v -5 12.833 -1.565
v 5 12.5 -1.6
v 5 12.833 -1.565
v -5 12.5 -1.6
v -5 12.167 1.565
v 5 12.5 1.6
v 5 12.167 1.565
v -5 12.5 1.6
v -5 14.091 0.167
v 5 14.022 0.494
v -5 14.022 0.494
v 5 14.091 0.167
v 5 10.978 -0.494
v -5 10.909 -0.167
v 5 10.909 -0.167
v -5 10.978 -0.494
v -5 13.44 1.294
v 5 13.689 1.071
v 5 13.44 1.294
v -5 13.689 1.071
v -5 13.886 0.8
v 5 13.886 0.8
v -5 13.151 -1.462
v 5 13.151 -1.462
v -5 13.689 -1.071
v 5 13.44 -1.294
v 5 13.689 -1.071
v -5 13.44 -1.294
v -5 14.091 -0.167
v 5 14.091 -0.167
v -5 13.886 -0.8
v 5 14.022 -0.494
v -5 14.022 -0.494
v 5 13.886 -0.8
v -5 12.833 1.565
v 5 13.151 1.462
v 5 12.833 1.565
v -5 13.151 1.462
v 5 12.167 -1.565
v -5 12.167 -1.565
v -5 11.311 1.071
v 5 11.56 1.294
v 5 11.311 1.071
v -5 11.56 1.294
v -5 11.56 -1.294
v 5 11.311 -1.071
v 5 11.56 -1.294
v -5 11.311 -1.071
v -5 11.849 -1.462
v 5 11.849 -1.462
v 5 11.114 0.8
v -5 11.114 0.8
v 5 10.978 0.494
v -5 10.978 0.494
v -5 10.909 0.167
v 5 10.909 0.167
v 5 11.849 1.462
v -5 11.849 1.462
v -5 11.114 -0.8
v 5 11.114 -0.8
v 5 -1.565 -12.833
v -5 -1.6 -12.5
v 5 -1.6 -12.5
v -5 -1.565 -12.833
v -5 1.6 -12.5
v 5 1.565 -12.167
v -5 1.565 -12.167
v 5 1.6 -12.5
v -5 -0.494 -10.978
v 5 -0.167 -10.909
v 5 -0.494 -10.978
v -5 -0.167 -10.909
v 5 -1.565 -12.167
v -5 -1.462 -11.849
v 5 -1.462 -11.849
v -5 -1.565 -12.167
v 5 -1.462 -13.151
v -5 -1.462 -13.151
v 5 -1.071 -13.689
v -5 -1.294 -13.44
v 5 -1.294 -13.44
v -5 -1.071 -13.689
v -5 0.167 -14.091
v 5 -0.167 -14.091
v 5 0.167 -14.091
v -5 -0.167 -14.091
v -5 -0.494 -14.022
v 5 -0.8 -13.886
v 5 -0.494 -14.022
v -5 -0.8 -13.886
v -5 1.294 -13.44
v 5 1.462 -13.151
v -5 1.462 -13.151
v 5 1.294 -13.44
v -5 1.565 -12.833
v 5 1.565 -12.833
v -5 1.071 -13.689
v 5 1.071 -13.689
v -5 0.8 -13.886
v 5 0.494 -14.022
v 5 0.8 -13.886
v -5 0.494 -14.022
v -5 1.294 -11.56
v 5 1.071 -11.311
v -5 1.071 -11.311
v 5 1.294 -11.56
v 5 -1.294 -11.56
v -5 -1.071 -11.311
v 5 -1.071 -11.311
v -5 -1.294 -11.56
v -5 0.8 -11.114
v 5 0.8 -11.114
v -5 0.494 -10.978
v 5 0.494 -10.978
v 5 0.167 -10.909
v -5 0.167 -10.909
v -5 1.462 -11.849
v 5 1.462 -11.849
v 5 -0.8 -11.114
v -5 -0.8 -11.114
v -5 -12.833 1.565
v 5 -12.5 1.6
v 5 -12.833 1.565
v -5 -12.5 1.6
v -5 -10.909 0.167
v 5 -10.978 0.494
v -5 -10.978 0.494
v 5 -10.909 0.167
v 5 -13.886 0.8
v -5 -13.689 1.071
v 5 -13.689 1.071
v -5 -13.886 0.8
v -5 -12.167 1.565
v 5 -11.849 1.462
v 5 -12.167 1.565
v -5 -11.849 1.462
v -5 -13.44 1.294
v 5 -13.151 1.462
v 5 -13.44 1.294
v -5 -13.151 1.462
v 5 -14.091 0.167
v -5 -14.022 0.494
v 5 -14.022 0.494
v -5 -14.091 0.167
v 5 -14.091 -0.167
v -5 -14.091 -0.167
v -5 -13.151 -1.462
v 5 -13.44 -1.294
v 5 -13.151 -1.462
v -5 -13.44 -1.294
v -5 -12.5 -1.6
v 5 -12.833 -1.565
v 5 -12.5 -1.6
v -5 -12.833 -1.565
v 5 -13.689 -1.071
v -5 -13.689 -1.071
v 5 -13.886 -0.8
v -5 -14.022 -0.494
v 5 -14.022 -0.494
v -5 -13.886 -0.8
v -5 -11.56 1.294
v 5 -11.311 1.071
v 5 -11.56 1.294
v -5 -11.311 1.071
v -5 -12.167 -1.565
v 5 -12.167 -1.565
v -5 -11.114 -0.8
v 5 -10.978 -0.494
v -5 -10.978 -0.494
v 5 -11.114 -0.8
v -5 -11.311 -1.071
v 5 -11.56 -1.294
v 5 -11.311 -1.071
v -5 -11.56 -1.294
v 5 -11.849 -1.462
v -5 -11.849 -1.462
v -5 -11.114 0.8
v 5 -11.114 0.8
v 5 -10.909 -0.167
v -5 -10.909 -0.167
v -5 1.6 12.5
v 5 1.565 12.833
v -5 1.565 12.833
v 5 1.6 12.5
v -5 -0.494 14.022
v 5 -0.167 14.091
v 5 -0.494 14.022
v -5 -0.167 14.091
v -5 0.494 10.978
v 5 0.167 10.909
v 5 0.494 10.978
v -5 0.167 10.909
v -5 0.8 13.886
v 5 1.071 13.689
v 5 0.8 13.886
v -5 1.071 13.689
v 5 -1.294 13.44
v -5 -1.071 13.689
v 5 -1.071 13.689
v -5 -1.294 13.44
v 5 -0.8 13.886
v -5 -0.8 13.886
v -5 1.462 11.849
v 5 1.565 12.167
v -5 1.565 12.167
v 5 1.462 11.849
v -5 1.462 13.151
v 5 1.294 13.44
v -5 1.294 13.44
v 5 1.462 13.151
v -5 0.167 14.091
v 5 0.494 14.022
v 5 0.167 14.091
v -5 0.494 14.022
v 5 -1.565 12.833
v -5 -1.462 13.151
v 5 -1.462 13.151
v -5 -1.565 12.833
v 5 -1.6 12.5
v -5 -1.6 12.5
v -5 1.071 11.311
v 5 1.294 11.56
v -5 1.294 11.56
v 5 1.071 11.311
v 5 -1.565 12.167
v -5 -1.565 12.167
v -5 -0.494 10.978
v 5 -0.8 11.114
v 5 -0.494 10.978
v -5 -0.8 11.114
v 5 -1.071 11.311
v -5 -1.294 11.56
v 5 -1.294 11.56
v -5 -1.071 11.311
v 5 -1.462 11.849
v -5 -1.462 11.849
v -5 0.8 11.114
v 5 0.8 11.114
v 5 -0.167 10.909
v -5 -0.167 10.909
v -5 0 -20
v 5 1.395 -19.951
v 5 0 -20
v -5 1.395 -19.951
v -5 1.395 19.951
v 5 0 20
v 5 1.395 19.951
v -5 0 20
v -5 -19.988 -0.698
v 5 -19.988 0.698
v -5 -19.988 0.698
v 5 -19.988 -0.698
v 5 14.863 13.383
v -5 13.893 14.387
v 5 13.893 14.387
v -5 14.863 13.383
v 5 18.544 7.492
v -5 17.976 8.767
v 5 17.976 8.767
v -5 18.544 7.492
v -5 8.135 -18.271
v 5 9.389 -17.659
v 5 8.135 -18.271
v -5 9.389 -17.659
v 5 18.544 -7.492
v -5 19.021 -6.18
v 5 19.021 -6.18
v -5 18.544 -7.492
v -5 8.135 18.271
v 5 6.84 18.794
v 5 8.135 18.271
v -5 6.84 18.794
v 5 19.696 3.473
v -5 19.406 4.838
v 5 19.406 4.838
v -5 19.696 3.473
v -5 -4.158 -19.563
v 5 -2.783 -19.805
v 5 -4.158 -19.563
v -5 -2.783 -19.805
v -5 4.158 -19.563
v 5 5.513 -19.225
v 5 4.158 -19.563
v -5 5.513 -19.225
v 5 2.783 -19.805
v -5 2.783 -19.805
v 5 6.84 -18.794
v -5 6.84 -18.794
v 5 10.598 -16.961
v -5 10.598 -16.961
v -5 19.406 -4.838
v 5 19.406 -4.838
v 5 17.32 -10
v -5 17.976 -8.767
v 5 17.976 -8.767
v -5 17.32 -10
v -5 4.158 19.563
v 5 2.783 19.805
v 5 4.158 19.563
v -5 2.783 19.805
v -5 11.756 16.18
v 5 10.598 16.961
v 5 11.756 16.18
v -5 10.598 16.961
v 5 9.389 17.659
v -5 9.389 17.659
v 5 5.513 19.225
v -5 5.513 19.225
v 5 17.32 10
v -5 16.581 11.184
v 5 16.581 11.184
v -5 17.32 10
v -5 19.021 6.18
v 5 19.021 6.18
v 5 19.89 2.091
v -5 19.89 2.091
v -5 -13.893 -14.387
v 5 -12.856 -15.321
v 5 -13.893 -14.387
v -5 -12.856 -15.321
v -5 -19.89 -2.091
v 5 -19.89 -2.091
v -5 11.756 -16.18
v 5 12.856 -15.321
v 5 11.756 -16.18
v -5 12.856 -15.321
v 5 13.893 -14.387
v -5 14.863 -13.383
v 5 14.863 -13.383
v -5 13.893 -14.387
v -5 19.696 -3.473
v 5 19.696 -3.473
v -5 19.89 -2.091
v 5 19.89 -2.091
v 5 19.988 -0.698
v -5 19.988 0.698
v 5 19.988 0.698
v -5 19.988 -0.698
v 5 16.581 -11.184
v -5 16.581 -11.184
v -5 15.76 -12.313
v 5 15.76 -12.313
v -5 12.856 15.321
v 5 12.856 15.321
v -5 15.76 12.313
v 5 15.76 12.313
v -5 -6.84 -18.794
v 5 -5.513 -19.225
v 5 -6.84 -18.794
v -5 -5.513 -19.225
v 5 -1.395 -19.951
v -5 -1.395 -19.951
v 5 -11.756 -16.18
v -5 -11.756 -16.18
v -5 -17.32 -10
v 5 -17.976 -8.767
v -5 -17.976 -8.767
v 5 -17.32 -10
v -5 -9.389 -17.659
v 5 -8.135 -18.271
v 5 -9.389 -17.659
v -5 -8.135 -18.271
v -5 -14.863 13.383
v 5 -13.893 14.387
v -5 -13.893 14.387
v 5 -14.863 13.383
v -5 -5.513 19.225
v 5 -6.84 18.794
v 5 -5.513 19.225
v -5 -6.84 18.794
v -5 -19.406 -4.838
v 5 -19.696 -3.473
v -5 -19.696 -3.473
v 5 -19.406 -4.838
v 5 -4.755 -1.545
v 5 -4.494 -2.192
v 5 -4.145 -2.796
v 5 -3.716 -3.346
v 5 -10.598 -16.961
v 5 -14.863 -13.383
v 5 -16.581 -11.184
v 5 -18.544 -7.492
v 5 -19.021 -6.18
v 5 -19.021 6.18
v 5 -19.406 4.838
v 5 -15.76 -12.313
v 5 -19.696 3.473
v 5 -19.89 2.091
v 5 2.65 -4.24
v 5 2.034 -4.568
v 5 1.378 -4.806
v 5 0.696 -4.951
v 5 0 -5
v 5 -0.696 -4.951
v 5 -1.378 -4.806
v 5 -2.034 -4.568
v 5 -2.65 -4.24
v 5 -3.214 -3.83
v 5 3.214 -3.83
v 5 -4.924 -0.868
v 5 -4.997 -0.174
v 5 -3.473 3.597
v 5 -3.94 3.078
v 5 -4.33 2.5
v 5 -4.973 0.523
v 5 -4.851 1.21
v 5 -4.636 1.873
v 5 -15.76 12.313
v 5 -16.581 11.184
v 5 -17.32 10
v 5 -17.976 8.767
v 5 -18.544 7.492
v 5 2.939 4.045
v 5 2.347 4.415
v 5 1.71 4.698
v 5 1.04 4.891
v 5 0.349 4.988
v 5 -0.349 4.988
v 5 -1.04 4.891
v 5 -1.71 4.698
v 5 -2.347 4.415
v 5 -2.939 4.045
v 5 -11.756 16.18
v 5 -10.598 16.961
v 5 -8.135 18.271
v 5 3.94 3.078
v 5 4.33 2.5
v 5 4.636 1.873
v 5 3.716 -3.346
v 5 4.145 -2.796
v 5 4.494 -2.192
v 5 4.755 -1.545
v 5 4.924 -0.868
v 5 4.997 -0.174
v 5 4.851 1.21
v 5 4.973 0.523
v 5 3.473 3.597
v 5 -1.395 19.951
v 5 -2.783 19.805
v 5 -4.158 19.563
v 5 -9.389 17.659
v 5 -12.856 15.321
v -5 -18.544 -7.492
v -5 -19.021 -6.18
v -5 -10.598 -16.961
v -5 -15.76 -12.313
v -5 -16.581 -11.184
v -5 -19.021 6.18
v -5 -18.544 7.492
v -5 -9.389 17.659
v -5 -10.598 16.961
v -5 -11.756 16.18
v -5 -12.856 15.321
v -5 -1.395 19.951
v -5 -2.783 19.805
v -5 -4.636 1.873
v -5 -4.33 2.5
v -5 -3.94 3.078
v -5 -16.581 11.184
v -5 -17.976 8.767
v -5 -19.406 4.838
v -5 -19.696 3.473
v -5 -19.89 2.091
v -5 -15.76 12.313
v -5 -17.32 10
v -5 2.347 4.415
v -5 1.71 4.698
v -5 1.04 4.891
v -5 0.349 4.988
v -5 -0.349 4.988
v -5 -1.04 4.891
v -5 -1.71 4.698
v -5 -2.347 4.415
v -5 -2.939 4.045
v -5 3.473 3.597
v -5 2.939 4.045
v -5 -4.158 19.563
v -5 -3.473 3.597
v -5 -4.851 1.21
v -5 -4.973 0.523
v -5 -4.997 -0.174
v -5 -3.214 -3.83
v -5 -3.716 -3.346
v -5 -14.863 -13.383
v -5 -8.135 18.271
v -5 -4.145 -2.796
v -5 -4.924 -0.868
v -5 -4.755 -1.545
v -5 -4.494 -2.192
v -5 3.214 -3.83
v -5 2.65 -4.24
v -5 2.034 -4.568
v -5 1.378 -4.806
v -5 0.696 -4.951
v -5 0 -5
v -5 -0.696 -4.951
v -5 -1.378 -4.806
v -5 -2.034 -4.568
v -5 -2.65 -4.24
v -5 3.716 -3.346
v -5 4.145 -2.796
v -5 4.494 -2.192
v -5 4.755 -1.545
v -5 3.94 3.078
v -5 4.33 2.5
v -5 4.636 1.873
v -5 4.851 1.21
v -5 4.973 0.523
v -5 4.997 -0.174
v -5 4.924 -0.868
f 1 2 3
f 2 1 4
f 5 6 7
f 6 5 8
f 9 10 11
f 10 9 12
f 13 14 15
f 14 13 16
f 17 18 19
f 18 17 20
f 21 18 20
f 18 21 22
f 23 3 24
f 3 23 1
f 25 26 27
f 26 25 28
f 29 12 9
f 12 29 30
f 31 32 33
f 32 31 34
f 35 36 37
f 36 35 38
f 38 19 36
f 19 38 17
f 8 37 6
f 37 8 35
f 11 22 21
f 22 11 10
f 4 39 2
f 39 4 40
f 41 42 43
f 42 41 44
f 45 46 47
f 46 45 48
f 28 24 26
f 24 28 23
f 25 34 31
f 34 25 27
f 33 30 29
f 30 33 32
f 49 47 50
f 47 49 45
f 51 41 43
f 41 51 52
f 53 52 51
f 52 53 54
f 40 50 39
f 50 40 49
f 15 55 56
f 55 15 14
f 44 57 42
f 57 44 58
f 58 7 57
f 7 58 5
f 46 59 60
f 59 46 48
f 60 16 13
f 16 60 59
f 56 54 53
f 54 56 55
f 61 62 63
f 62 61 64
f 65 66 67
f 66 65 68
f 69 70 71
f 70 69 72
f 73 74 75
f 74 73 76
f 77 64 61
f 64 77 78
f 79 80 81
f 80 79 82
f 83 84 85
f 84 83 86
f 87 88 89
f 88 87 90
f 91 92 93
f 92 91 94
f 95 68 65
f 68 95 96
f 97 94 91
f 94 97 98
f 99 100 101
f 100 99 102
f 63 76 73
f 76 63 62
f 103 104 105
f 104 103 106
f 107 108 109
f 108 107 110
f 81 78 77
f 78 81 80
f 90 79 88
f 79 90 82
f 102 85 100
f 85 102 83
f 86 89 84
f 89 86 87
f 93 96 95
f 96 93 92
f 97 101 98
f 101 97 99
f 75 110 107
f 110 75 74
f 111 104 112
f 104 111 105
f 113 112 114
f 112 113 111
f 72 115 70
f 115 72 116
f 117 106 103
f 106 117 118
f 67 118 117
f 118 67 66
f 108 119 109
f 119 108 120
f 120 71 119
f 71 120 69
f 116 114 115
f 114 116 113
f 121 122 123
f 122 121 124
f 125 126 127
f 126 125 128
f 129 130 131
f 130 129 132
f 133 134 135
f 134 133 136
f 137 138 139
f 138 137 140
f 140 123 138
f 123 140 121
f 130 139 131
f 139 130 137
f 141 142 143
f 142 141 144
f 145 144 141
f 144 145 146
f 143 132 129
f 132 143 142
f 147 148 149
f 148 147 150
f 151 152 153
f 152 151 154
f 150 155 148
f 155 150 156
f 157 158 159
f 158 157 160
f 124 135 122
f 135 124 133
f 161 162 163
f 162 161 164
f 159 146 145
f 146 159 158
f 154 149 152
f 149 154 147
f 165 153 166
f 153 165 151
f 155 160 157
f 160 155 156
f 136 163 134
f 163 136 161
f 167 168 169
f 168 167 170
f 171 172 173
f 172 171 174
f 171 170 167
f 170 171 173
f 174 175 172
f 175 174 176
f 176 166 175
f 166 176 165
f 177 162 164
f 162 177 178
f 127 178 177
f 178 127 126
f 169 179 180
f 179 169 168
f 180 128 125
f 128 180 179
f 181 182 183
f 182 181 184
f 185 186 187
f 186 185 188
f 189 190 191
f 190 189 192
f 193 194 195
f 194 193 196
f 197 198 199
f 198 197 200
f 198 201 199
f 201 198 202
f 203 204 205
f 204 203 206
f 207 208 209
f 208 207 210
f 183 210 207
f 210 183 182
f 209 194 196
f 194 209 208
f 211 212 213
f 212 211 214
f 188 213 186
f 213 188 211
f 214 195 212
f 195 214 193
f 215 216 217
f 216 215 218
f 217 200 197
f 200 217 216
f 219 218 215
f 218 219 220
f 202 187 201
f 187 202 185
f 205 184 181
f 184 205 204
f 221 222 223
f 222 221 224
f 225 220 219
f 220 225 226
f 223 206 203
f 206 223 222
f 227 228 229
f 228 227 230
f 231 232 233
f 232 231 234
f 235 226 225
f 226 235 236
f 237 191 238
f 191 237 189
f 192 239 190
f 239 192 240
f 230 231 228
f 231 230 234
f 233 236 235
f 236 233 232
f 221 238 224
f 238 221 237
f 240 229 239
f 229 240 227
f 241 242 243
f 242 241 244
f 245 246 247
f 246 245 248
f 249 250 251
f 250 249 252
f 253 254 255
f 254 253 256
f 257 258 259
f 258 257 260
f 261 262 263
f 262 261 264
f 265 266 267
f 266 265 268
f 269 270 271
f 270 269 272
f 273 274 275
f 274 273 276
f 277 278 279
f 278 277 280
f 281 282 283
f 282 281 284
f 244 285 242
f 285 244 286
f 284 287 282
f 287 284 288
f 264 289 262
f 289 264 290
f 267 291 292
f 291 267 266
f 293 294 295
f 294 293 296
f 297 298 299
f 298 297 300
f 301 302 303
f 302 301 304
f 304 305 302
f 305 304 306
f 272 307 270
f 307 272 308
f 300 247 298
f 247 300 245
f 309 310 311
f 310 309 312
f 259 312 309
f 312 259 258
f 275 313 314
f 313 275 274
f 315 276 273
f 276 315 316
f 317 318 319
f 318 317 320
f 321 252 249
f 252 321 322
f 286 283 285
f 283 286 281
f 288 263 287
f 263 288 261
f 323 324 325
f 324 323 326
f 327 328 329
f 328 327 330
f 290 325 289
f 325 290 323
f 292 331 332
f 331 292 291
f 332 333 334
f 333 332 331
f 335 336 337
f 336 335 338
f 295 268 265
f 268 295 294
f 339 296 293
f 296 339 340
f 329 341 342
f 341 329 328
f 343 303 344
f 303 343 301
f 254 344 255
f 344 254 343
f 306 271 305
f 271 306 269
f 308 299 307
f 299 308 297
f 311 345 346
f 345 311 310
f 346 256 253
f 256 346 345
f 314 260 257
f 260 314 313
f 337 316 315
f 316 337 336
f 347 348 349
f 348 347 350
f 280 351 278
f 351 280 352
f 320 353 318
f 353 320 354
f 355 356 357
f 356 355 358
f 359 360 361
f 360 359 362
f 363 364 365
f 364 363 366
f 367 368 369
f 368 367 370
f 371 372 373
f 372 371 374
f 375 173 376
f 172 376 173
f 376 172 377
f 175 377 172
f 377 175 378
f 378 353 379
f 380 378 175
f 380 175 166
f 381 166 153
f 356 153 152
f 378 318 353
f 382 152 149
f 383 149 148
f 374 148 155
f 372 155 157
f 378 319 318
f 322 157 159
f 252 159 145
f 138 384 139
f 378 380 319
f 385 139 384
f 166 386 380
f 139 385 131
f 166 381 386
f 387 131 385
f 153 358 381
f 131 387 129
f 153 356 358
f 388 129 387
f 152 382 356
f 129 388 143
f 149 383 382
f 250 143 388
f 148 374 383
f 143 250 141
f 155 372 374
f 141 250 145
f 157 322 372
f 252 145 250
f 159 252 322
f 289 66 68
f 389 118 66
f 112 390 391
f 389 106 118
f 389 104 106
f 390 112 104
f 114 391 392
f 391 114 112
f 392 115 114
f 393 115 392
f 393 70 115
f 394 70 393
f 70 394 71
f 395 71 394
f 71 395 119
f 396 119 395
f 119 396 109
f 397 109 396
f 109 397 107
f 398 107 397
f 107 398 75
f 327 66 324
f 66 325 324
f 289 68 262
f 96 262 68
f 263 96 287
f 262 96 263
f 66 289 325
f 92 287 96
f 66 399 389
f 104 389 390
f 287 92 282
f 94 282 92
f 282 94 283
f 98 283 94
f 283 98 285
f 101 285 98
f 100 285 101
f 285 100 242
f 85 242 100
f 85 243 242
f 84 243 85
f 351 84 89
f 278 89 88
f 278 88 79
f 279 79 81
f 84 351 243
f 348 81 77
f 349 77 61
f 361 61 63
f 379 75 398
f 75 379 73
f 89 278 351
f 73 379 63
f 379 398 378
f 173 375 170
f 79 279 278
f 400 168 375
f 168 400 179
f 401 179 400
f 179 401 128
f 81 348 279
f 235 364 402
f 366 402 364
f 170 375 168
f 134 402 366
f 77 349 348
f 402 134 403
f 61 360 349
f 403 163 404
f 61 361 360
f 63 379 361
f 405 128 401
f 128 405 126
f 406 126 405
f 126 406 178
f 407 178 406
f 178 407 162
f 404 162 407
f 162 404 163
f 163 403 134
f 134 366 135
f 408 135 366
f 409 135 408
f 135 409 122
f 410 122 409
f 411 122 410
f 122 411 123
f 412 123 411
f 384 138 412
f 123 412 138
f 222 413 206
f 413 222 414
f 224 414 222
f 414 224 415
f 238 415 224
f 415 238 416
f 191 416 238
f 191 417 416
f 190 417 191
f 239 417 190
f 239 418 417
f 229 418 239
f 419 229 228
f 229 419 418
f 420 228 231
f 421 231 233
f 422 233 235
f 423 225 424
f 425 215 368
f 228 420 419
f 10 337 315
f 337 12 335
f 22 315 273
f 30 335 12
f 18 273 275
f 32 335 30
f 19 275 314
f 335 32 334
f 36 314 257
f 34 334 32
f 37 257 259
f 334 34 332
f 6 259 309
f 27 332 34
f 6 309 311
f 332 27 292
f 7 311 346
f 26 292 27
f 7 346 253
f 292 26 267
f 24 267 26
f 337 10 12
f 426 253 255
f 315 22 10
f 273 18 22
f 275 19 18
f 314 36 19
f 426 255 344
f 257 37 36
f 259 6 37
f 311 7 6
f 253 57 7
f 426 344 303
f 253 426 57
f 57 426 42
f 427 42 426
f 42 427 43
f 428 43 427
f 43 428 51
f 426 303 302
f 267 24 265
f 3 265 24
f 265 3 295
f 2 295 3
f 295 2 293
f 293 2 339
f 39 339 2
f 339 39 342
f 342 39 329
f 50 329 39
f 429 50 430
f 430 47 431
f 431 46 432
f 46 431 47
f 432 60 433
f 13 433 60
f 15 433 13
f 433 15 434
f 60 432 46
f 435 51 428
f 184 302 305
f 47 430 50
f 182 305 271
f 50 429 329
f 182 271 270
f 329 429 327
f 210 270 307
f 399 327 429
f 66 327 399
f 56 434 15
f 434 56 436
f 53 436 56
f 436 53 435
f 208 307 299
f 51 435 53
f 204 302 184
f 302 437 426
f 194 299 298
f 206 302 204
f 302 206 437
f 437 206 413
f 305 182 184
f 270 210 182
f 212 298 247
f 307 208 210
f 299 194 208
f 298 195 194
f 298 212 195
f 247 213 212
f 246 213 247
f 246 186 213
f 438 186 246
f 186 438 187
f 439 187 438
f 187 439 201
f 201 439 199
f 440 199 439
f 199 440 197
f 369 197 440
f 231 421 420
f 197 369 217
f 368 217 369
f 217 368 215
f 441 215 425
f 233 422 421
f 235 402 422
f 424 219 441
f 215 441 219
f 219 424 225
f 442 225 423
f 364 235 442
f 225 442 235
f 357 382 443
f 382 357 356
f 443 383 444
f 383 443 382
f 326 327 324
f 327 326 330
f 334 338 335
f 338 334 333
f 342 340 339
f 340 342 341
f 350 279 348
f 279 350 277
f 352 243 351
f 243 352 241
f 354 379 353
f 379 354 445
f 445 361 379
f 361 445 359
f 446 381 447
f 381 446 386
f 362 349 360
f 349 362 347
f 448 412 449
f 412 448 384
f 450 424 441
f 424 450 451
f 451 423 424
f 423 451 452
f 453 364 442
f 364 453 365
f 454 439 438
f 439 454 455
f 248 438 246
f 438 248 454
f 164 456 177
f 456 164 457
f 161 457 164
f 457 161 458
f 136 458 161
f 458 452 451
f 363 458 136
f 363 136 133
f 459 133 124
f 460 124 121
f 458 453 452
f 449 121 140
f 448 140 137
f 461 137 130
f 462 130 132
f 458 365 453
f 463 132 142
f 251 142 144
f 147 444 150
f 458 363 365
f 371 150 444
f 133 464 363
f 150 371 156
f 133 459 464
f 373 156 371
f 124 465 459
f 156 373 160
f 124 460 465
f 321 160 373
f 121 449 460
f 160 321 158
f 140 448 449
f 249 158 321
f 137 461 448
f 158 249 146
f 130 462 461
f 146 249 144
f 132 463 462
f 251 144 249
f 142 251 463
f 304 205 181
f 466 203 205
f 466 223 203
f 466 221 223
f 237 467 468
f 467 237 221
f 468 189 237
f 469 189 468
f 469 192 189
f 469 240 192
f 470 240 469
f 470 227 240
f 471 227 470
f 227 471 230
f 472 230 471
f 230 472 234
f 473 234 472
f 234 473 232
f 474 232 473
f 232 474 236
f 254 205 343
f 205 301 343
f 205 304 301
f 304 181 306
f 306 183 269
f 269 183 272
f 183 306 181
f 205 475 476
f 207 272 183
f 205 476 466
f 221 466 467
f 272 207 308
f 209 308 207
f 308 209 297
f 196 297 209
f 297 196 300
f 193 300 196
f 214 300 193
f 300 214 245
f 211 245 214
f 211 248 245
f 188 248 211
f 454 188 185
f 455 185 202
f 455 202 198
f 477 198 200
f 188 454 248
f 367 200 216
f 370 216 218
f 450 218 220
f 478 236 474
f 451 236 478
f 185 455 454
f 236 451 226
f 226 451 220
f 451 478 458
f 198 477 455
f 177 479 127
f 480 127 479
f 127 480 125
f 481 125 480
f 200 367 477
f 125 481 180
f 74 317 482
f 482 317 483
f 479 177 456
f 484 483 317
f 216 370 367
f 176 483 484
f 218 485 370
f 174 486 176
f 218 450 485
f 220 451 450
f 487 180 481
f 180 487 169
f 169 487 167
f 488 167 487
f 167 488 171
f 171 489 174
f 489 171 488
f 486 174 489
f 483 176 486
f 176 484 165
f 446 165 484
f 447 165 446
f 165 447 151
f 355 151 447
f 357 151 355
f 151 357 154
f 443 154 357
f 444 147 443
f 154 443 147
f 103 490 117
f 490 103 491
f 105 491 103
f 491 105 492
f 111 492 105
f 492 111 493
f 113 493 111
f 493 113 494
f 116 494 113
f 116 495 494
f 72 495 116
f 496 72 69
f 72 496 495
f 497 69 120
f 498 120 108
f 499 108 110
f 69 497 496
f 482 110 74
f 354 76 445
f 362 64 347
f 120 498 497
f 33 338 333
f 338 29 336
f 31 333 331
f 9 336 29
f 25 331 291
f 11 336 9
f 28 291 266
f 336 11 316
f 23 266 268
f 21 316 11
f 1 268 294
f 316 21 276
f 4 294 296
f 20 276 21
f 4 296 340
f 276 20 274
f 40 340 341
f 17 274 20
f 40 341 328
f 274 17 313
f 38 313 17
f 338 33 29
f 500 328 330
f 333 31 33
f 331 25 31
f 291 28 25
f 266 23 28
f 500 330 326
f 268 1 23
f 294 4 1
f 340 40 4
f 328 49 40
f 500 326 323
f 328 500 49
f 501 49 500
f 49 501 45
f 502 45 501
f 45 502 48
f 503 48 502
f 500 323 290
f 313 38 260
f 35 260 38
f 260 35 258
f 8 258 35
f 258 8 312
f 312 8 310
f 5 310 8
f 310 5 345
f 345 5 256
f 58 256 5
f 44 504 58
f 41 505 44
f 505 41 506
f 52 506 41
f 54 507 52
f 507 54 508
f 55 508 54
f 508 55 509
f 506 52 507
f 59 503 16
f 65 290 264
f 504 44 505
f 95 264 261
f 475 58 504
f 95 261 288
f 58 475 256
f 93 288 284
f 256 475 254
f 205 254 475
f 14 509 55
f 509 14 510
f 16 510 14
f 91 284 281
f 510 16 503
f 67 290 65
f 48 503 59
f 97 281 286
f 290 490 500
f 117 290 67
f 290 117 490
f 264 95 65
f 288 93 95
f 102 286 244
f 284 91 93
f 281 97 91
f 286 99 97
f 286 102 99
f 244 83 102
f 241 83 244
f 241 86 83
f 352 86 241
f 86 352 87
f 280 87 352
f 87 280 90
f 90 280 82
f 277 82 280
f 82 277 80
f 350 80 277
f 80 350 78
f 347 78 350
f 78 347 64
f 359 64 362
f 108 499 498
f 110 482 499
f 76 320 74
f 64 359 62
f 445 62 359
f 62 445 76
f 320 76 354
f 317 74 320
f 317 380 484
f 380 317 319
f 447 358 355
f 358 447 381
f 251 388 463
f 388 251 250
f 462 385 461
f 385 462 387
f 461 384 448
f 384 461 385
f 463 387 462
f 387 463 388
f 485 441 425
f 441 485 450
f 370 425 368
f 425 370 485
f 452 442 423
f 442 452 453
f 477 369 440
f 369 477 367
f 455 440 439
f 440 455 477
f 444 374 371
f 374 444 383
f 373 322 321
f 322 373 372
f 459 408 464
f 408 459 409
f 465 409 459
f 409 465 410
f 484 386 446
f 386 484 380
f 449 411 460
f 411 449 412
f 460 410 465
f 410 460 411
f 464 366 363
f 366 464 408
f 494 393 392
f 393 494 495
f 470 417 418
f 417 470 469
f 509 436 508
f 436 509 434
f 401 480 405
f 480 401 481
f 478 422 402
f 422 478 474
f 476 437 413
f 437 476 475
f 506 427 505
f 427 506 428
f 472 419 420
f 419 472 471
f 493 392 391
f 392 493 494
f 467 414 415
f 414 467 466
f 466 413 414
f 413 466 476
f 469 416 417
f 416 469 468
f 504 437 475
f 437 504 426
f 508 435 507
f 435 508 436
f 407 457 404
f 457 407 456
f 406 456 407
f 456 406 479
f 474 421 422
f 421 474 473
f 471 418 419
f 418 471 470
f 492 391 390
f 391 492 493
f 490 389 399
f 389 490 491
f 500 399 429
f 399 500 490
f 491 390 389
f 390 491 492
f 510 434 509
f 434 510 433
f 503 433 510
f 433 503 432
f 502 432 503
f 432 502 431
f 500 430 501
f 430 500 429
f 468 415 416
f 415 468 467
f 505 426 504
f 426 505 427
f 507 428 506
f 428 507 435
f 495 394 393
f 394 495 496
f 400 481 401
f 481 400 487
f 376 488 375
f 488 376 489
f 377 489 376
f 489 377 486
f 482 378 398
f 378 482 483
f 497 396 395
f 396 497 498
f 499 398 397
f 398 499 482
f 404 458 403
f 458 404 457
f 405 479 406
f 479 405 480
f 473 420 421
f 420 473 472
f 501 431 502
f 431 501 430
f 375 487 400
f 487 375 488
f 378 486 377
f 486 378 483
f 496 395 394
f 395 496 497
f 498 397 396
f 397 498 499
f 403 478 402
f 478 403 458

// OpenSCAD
////////////////////////////////////
//back circle wall 
////////////////////////////////////

difference(){
union(){    
translate([0,0,0]) rotate([0,90,0]) cylinder(h = 10, d=40, $fn = 90, center = true); 


}
translate([0,0,0]) rotate([0,90,0]) cylinder(h = 10, d=10, $fn = 45, center = true);
    

    
for(i=[0:3]) rotate([-i*90,0,0]) translate([0,12.5,0]) rotate([0,90,0]) cylinder(h = 11, d=3.2, $fn = 30, center = true);

}
